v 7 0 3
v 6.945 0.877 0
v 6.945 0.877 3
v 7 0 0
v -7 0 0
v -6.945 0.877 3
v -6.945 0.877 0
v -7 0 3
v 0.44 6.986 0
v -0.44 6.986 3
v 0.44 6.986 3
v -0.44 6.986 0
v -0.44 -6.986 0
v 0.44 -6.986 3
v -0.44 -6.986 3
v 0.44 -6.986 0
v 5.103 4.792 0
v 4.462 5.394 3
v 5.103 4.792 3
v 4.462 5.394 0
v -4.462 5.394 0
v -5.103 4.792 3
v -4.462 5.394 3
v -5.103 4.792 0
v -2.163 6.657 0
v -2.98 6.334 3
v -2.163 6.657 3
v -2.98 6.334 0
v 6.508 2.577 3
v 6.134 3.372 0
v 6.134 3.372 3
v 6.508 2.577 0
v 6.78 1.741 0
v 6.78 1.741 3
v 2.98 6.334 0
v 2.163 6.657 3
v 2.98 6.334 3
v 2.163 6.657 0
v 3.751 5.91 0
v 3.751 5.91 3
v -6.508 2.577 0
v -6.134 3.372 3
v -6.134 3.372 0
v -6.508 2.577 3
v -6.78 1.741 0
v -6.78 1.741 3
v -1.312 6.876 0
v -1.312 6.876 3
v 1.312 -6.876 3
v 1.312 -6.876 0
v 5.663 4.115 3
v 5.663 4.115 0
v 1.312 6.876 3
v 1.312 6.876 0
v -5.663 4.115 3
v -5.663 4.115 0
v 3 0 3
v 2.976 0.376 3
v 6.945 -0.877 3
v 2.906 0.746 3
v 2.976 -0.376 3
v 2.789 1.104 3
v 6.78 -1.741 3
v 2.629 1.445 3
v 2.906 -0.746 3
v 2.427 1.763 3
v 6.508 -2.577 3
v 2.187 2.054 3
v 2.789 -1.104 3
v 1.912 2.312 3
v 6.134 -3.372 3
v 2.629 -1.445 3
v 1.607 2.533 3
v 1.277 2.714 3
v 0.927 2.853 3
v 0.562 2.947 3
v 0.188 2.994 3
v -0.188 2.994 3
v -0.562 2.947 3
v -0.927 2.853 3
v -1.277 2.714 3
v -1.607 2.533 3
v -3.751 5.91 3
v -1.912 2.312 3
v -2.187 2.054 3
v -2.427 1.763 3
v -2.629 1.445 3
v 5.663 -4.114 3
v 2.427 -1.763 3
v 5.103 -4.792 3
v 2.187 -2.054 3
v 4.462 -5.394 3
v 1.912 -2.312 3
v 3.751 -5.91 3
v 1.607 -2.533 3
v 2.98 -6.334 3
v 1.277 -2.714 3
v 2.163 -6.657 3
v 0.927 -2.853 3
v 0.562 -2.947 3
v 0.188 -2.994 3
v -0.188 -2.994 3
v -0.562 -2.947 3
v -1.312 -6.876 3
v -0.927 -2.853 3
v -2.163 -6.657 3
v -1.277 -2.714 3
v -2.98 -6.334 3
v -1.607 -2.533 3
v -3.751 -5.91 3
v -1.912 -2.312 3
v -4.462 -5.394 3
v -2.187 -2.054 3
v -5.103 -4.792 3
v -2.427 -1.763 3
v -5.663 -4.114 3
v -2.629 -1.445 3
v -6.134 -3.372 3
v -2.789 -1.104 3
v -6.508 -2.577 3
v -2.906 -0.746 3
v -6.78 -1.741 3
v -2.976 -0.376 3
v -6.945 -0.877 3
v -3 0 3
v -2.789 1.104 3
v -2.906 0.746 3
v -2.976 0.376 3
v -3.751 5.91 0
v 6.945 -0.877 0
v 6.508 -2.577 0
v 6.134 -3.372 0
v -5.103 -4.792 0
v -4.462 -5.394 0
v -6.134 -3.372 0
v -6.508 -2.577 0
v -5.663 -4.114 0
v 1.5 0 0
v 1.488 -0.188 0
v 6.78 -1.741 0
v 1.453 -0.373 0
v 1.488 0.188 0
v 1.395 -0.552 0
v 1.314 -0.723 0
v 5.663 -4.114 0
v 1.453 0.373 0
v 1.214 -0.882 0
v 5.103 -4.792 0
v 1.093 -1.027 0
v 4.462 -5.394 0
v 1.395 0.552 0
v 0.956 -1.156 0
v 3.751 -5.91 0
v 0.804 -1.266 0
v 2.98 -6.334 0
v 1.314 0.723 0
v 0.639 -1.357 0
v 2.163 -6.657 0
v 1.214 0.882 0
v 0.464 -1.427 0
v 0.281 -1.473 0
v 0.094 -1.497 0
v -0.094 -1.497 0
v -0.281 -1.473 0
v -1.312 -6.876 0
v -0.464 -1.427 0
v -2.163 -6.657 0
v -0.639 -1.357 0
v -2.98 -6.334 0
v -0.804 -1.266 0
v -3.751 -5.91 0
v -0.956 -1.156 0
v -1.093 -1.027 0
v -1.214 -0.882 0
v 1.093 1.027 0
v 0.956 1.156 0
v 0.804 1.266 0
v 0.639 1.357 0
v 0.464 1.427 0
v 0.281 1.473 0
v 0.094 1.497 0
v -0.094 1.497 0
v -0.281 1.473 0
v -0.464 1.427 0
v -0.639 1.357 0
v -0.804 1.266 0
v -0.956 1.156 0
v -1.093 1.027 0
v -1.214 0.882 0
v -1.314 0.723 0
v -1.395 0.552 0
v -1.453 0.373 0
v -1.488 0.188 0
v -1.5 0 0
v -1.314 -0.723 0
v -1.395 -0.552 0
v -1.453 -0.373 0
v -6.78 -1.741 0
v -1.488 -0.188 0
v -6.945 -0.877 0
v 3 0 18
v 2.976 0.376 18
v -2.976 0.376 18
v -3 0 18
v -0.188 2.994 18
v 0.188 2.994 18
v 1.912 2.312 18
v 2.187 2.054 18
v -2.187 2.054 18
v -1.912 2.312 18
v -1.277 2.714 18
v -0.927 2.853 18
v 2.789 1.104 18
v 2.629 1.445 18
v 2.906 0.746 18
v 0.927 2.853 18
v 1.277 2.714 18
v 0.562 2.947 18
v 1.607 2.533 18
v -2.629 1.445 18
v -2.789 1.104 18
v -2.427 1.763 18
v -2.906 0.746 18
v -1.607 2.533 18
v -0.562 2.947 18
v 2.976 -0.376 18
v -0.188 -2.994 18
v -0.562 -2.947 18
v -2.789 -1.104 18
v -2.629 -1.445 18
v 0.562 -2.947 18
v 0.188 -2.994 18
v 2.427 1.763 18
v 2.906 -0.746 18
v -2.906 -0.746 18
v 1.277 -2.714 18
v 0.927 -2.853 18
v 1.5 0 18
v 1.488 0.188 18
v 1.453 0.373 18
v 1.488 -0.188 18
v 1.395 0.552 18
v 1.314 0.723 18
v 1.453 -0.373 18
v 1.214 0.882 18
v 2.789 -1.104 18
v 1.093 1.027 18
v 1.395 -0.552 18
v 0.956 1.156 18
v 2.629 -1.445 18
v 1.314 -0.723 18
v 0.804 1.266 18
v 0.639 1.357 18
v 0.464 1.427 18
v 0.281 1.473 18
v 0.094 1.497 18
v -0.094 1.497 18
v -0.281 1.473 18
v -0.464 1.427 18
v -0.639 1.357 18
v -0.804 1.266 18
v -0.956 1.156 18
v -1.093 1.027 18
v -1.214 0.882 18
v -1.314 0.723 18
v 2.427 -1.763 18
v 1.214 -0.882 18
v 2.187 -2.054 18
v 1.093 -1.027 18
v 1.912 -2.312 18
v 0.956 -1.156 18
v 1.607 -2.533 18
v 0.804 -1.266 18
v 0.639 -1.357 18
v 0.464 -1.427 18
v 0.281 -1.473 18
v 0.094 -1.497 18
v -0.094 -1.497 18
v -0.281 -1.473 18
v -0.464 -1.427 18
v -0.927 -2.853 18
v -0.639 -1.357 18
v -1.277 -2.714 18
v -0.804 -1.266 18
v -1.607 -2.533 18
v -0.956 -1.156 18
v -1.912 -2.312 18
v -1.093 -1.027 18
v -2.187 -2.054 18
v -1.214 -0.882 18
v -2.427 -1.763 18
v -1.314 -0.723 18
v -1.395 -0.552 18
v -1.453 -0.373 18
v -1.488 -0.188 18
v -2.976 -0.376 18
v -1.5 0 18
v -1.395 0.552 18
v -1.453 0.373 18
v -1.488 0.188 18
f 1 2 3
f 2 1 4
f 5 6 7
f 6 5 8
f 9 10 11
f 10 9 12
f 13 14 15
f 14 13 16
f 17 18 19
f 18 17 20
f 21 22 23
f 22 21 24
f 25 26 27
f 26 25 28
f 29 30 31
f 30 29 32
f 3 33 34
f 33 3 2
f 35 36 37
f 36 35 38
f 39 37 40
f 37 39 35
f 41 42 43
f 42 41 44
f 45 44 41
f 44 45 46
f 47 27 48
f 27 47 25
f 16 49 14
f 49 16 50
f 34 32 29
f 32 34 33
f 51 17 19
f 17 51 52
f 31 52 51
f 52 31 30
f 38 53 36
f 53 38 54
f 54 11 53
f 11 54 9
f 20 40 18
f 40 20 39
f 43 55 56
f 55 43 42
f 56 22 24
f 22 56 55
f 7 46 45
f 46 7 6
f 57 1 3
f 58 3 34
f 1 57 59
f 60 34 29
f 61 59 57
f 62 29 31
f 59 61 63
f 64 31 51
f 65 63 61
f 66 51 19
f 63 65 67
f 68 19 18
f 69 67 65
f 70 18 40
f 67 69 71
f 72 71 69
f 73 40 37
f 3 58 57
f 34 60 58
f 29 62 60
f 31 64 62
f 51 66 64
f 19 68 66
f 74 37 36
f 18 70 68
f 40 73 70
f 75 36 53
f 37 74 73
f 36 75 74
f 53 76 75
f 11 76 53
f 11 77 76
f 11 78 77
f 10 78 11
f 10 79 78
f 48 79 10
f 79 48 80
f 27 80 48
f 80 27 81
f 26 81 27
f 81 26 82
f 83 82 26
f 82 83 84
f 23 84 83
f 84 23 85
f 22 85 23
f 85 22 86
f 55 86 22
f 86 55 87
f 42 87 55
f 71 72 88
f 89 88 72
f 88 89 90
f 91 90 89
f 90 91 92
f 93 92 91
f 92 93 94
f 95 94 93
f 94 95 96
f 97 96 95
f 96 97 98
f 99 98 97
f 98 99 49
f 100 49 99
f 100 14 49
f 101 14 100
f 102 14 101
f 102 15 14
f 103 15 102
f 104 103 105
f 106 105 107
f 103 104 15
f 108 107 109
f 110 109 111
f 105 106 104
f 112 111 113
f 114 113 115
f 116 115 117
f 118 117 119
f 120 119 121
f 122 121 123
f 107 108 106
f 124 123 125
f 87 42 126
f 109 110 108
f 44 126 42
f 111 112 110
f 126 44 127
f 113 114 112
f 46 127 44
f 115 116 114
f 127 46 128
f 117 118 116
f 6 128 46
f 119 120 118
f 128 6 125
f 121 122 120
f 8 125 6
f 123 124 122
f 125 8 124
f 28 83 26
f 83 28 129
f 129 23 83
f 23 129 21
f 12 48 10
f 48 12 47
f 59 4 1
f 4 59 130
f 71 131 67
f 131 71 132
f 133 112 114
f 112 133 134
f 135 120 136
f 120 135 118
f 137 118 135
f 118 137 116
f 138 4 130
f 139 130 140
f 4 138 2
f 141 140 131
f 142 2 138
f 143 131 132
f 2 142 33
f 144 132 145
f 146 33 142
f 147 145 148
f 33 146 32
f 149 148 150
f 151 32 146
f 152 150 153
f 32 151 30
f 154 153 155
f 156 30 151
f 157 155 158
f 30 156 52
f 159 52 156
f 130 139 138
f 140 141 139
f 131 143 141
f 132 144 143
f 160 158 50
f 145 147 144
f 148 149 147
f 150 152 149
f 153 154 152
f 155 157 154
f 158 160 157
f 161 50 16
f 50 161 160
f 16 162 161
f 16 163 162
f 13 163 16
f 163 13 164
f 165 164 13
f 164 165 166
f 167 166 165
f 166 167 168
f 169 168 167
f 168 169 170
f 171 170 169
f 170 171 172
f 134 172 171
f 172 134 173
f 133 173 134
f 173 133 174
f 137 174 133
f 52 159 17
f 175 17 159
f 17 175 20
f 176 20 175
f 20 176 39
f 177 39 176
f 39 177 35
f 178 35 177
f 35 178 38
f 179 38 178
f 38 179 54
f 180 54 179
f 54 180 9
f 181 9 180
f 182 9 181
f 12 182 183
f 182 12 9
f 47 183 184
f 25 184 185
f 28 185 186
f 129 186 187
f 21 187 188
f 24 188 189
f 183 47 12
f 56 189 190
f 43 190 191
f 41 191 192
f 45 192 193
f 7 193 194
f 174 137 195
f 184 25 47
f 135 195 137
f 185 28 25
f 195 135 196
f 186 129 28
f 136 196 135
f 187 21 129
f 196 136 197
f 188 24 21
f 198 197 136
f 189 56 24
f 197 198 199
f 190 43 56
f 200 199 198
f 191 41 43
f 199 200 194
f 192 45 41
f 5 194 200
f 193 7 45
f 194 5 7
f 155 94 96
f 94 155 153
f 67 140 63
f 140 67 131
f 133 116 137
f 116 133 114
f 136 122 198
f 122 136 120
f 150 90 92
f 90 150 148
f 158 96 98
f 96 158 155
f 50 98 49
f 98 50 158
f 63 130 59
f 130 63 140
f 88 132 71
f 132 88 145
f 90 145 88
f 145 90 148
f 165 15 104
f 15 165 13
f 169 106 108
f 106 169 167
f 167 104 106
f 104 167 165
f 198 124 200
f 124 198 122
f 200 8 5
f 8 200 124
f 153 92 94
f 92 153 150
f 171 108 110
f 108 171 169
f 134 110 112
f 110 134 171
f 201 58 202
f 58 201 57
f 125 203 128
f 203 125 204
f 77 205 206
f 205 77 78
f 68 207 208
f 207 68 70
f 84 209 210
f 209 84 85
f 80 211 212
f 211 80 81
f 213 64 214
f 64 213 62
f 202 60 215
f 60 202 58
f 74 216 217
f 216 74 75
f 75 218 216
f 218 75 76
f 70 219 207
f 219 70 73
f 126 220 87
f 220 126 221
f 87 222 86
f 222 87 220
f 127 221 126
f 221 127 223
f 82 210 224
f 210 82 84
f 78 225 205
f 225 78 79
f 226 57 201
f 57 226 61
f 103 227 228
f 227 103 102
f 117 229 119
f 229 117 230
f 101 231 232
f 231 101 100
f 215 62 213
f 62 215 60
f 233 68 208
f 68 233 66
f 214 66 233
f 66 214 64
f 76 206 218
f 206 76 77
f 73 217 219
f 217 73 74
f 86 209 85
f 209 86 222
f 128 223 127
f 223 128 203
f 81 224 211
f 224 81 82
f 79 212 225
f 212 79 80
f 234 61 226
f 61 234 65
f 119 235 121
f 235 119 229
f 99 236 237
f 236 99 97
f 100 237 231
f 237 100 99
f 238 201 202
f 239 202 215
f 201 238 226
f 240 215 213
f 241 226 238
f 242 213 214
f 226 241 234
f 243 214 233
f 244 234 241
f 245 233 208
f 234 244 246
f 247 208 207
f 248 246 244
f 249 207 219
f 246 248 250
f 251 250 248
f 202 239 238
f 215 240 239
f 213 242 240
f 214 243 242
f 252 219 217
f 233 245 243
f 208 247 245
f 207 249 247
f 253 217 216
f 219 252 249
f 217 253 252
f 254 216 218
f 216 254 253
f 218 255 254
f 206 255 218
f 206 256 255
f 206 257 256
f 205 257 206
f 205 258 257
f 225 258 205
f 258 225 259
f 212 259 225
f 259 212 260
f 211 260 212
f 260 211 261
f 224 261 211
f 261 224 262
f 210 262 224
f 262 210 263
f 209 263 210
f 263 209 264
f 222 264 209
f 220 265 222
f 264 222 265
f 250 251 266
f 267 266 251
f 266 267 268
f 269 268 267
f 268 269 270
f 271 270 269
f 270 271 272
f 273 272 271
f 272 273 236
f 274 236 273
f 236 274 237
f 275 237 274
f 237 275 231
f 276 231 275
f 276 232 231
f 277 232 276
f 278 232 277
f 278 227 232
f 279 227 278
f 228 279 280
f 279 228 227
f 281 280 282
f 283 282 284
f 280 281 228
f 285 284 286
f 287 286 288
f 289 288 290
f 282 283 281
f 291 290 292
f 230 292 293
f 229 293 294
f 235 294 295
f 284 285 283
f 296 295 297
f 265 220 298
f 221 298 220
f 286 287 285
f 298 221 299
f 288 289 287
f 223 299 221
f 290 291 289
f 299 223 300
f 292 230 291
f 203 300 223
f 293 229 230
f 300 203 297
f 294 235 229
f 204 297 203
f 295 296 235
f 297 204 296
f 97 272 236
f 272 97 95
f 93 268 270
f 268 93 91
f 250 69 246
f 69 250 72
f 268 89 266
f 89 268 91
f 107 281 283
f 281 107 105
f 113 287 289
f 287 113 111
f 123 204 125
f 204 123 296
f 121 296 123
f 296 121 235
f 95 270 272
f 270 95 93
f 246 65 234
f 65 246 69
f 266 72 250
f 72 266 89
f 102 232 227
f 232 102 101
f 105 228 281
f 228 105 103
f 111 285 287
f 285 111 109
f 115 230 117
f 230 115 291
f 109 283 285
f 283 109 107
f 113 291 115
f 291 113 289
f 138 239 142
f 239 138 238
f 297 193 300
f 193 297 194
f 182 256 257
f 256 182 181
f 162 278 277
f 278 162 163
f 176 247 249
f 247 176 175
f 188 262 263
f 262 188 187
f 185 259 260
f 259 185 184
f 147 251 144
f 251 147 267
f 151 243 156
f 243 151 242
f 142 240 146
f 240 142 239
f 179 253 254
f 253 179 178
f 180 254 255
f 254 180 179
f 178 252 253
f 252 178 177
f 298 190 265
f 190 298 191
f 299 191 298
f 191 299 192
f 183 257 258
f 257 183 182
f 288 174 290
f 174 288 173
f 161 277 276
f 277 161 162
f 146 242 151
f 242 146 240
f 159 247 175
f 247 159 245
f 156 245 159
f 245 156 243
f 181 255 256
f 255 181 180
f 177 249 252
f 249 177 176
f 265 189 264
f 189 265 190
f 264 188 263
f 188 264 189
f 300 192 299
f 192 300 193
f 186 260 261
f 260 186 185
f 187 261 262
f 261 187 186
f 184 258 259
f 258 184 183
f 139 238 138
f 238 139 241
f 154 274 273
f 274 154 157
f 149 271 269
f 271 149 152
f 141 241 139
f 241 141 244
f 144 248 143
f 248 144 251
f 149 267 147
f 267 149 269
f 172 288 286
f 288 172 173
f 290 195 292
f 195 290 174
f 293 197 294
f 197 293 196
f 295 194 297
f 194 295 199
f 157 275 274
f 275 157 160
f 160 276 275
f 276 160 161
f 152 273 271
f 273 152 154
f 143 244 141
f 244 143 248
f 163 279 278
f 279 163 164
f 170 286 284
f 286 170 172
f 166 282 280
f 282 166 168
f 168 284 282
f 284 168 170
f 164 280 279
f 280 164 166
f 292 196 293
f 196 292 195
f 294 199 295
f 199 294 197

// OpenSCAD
$fn = 50;


difference() {
	union() {
		translate(v = [0, 0, 0]) {
			rotate(a = [0, 0, 0]) {
				cylinder(h = 3, r = 7.0000000000);
			}
		}
		translate(v = [0, 0, 0]) {
			rotate(a = [0, 0, 0]) {
				cylinder(h = 18, r = 3.0000000000);
			}
		}
	}
	union() {
		translate(v = [0, 0, -125.0000000000]) {
			rotate(a = [0, 0, 0]) {
				cylinder(h = 250, r = 1.5000000000);
			}
		}
	}
}
